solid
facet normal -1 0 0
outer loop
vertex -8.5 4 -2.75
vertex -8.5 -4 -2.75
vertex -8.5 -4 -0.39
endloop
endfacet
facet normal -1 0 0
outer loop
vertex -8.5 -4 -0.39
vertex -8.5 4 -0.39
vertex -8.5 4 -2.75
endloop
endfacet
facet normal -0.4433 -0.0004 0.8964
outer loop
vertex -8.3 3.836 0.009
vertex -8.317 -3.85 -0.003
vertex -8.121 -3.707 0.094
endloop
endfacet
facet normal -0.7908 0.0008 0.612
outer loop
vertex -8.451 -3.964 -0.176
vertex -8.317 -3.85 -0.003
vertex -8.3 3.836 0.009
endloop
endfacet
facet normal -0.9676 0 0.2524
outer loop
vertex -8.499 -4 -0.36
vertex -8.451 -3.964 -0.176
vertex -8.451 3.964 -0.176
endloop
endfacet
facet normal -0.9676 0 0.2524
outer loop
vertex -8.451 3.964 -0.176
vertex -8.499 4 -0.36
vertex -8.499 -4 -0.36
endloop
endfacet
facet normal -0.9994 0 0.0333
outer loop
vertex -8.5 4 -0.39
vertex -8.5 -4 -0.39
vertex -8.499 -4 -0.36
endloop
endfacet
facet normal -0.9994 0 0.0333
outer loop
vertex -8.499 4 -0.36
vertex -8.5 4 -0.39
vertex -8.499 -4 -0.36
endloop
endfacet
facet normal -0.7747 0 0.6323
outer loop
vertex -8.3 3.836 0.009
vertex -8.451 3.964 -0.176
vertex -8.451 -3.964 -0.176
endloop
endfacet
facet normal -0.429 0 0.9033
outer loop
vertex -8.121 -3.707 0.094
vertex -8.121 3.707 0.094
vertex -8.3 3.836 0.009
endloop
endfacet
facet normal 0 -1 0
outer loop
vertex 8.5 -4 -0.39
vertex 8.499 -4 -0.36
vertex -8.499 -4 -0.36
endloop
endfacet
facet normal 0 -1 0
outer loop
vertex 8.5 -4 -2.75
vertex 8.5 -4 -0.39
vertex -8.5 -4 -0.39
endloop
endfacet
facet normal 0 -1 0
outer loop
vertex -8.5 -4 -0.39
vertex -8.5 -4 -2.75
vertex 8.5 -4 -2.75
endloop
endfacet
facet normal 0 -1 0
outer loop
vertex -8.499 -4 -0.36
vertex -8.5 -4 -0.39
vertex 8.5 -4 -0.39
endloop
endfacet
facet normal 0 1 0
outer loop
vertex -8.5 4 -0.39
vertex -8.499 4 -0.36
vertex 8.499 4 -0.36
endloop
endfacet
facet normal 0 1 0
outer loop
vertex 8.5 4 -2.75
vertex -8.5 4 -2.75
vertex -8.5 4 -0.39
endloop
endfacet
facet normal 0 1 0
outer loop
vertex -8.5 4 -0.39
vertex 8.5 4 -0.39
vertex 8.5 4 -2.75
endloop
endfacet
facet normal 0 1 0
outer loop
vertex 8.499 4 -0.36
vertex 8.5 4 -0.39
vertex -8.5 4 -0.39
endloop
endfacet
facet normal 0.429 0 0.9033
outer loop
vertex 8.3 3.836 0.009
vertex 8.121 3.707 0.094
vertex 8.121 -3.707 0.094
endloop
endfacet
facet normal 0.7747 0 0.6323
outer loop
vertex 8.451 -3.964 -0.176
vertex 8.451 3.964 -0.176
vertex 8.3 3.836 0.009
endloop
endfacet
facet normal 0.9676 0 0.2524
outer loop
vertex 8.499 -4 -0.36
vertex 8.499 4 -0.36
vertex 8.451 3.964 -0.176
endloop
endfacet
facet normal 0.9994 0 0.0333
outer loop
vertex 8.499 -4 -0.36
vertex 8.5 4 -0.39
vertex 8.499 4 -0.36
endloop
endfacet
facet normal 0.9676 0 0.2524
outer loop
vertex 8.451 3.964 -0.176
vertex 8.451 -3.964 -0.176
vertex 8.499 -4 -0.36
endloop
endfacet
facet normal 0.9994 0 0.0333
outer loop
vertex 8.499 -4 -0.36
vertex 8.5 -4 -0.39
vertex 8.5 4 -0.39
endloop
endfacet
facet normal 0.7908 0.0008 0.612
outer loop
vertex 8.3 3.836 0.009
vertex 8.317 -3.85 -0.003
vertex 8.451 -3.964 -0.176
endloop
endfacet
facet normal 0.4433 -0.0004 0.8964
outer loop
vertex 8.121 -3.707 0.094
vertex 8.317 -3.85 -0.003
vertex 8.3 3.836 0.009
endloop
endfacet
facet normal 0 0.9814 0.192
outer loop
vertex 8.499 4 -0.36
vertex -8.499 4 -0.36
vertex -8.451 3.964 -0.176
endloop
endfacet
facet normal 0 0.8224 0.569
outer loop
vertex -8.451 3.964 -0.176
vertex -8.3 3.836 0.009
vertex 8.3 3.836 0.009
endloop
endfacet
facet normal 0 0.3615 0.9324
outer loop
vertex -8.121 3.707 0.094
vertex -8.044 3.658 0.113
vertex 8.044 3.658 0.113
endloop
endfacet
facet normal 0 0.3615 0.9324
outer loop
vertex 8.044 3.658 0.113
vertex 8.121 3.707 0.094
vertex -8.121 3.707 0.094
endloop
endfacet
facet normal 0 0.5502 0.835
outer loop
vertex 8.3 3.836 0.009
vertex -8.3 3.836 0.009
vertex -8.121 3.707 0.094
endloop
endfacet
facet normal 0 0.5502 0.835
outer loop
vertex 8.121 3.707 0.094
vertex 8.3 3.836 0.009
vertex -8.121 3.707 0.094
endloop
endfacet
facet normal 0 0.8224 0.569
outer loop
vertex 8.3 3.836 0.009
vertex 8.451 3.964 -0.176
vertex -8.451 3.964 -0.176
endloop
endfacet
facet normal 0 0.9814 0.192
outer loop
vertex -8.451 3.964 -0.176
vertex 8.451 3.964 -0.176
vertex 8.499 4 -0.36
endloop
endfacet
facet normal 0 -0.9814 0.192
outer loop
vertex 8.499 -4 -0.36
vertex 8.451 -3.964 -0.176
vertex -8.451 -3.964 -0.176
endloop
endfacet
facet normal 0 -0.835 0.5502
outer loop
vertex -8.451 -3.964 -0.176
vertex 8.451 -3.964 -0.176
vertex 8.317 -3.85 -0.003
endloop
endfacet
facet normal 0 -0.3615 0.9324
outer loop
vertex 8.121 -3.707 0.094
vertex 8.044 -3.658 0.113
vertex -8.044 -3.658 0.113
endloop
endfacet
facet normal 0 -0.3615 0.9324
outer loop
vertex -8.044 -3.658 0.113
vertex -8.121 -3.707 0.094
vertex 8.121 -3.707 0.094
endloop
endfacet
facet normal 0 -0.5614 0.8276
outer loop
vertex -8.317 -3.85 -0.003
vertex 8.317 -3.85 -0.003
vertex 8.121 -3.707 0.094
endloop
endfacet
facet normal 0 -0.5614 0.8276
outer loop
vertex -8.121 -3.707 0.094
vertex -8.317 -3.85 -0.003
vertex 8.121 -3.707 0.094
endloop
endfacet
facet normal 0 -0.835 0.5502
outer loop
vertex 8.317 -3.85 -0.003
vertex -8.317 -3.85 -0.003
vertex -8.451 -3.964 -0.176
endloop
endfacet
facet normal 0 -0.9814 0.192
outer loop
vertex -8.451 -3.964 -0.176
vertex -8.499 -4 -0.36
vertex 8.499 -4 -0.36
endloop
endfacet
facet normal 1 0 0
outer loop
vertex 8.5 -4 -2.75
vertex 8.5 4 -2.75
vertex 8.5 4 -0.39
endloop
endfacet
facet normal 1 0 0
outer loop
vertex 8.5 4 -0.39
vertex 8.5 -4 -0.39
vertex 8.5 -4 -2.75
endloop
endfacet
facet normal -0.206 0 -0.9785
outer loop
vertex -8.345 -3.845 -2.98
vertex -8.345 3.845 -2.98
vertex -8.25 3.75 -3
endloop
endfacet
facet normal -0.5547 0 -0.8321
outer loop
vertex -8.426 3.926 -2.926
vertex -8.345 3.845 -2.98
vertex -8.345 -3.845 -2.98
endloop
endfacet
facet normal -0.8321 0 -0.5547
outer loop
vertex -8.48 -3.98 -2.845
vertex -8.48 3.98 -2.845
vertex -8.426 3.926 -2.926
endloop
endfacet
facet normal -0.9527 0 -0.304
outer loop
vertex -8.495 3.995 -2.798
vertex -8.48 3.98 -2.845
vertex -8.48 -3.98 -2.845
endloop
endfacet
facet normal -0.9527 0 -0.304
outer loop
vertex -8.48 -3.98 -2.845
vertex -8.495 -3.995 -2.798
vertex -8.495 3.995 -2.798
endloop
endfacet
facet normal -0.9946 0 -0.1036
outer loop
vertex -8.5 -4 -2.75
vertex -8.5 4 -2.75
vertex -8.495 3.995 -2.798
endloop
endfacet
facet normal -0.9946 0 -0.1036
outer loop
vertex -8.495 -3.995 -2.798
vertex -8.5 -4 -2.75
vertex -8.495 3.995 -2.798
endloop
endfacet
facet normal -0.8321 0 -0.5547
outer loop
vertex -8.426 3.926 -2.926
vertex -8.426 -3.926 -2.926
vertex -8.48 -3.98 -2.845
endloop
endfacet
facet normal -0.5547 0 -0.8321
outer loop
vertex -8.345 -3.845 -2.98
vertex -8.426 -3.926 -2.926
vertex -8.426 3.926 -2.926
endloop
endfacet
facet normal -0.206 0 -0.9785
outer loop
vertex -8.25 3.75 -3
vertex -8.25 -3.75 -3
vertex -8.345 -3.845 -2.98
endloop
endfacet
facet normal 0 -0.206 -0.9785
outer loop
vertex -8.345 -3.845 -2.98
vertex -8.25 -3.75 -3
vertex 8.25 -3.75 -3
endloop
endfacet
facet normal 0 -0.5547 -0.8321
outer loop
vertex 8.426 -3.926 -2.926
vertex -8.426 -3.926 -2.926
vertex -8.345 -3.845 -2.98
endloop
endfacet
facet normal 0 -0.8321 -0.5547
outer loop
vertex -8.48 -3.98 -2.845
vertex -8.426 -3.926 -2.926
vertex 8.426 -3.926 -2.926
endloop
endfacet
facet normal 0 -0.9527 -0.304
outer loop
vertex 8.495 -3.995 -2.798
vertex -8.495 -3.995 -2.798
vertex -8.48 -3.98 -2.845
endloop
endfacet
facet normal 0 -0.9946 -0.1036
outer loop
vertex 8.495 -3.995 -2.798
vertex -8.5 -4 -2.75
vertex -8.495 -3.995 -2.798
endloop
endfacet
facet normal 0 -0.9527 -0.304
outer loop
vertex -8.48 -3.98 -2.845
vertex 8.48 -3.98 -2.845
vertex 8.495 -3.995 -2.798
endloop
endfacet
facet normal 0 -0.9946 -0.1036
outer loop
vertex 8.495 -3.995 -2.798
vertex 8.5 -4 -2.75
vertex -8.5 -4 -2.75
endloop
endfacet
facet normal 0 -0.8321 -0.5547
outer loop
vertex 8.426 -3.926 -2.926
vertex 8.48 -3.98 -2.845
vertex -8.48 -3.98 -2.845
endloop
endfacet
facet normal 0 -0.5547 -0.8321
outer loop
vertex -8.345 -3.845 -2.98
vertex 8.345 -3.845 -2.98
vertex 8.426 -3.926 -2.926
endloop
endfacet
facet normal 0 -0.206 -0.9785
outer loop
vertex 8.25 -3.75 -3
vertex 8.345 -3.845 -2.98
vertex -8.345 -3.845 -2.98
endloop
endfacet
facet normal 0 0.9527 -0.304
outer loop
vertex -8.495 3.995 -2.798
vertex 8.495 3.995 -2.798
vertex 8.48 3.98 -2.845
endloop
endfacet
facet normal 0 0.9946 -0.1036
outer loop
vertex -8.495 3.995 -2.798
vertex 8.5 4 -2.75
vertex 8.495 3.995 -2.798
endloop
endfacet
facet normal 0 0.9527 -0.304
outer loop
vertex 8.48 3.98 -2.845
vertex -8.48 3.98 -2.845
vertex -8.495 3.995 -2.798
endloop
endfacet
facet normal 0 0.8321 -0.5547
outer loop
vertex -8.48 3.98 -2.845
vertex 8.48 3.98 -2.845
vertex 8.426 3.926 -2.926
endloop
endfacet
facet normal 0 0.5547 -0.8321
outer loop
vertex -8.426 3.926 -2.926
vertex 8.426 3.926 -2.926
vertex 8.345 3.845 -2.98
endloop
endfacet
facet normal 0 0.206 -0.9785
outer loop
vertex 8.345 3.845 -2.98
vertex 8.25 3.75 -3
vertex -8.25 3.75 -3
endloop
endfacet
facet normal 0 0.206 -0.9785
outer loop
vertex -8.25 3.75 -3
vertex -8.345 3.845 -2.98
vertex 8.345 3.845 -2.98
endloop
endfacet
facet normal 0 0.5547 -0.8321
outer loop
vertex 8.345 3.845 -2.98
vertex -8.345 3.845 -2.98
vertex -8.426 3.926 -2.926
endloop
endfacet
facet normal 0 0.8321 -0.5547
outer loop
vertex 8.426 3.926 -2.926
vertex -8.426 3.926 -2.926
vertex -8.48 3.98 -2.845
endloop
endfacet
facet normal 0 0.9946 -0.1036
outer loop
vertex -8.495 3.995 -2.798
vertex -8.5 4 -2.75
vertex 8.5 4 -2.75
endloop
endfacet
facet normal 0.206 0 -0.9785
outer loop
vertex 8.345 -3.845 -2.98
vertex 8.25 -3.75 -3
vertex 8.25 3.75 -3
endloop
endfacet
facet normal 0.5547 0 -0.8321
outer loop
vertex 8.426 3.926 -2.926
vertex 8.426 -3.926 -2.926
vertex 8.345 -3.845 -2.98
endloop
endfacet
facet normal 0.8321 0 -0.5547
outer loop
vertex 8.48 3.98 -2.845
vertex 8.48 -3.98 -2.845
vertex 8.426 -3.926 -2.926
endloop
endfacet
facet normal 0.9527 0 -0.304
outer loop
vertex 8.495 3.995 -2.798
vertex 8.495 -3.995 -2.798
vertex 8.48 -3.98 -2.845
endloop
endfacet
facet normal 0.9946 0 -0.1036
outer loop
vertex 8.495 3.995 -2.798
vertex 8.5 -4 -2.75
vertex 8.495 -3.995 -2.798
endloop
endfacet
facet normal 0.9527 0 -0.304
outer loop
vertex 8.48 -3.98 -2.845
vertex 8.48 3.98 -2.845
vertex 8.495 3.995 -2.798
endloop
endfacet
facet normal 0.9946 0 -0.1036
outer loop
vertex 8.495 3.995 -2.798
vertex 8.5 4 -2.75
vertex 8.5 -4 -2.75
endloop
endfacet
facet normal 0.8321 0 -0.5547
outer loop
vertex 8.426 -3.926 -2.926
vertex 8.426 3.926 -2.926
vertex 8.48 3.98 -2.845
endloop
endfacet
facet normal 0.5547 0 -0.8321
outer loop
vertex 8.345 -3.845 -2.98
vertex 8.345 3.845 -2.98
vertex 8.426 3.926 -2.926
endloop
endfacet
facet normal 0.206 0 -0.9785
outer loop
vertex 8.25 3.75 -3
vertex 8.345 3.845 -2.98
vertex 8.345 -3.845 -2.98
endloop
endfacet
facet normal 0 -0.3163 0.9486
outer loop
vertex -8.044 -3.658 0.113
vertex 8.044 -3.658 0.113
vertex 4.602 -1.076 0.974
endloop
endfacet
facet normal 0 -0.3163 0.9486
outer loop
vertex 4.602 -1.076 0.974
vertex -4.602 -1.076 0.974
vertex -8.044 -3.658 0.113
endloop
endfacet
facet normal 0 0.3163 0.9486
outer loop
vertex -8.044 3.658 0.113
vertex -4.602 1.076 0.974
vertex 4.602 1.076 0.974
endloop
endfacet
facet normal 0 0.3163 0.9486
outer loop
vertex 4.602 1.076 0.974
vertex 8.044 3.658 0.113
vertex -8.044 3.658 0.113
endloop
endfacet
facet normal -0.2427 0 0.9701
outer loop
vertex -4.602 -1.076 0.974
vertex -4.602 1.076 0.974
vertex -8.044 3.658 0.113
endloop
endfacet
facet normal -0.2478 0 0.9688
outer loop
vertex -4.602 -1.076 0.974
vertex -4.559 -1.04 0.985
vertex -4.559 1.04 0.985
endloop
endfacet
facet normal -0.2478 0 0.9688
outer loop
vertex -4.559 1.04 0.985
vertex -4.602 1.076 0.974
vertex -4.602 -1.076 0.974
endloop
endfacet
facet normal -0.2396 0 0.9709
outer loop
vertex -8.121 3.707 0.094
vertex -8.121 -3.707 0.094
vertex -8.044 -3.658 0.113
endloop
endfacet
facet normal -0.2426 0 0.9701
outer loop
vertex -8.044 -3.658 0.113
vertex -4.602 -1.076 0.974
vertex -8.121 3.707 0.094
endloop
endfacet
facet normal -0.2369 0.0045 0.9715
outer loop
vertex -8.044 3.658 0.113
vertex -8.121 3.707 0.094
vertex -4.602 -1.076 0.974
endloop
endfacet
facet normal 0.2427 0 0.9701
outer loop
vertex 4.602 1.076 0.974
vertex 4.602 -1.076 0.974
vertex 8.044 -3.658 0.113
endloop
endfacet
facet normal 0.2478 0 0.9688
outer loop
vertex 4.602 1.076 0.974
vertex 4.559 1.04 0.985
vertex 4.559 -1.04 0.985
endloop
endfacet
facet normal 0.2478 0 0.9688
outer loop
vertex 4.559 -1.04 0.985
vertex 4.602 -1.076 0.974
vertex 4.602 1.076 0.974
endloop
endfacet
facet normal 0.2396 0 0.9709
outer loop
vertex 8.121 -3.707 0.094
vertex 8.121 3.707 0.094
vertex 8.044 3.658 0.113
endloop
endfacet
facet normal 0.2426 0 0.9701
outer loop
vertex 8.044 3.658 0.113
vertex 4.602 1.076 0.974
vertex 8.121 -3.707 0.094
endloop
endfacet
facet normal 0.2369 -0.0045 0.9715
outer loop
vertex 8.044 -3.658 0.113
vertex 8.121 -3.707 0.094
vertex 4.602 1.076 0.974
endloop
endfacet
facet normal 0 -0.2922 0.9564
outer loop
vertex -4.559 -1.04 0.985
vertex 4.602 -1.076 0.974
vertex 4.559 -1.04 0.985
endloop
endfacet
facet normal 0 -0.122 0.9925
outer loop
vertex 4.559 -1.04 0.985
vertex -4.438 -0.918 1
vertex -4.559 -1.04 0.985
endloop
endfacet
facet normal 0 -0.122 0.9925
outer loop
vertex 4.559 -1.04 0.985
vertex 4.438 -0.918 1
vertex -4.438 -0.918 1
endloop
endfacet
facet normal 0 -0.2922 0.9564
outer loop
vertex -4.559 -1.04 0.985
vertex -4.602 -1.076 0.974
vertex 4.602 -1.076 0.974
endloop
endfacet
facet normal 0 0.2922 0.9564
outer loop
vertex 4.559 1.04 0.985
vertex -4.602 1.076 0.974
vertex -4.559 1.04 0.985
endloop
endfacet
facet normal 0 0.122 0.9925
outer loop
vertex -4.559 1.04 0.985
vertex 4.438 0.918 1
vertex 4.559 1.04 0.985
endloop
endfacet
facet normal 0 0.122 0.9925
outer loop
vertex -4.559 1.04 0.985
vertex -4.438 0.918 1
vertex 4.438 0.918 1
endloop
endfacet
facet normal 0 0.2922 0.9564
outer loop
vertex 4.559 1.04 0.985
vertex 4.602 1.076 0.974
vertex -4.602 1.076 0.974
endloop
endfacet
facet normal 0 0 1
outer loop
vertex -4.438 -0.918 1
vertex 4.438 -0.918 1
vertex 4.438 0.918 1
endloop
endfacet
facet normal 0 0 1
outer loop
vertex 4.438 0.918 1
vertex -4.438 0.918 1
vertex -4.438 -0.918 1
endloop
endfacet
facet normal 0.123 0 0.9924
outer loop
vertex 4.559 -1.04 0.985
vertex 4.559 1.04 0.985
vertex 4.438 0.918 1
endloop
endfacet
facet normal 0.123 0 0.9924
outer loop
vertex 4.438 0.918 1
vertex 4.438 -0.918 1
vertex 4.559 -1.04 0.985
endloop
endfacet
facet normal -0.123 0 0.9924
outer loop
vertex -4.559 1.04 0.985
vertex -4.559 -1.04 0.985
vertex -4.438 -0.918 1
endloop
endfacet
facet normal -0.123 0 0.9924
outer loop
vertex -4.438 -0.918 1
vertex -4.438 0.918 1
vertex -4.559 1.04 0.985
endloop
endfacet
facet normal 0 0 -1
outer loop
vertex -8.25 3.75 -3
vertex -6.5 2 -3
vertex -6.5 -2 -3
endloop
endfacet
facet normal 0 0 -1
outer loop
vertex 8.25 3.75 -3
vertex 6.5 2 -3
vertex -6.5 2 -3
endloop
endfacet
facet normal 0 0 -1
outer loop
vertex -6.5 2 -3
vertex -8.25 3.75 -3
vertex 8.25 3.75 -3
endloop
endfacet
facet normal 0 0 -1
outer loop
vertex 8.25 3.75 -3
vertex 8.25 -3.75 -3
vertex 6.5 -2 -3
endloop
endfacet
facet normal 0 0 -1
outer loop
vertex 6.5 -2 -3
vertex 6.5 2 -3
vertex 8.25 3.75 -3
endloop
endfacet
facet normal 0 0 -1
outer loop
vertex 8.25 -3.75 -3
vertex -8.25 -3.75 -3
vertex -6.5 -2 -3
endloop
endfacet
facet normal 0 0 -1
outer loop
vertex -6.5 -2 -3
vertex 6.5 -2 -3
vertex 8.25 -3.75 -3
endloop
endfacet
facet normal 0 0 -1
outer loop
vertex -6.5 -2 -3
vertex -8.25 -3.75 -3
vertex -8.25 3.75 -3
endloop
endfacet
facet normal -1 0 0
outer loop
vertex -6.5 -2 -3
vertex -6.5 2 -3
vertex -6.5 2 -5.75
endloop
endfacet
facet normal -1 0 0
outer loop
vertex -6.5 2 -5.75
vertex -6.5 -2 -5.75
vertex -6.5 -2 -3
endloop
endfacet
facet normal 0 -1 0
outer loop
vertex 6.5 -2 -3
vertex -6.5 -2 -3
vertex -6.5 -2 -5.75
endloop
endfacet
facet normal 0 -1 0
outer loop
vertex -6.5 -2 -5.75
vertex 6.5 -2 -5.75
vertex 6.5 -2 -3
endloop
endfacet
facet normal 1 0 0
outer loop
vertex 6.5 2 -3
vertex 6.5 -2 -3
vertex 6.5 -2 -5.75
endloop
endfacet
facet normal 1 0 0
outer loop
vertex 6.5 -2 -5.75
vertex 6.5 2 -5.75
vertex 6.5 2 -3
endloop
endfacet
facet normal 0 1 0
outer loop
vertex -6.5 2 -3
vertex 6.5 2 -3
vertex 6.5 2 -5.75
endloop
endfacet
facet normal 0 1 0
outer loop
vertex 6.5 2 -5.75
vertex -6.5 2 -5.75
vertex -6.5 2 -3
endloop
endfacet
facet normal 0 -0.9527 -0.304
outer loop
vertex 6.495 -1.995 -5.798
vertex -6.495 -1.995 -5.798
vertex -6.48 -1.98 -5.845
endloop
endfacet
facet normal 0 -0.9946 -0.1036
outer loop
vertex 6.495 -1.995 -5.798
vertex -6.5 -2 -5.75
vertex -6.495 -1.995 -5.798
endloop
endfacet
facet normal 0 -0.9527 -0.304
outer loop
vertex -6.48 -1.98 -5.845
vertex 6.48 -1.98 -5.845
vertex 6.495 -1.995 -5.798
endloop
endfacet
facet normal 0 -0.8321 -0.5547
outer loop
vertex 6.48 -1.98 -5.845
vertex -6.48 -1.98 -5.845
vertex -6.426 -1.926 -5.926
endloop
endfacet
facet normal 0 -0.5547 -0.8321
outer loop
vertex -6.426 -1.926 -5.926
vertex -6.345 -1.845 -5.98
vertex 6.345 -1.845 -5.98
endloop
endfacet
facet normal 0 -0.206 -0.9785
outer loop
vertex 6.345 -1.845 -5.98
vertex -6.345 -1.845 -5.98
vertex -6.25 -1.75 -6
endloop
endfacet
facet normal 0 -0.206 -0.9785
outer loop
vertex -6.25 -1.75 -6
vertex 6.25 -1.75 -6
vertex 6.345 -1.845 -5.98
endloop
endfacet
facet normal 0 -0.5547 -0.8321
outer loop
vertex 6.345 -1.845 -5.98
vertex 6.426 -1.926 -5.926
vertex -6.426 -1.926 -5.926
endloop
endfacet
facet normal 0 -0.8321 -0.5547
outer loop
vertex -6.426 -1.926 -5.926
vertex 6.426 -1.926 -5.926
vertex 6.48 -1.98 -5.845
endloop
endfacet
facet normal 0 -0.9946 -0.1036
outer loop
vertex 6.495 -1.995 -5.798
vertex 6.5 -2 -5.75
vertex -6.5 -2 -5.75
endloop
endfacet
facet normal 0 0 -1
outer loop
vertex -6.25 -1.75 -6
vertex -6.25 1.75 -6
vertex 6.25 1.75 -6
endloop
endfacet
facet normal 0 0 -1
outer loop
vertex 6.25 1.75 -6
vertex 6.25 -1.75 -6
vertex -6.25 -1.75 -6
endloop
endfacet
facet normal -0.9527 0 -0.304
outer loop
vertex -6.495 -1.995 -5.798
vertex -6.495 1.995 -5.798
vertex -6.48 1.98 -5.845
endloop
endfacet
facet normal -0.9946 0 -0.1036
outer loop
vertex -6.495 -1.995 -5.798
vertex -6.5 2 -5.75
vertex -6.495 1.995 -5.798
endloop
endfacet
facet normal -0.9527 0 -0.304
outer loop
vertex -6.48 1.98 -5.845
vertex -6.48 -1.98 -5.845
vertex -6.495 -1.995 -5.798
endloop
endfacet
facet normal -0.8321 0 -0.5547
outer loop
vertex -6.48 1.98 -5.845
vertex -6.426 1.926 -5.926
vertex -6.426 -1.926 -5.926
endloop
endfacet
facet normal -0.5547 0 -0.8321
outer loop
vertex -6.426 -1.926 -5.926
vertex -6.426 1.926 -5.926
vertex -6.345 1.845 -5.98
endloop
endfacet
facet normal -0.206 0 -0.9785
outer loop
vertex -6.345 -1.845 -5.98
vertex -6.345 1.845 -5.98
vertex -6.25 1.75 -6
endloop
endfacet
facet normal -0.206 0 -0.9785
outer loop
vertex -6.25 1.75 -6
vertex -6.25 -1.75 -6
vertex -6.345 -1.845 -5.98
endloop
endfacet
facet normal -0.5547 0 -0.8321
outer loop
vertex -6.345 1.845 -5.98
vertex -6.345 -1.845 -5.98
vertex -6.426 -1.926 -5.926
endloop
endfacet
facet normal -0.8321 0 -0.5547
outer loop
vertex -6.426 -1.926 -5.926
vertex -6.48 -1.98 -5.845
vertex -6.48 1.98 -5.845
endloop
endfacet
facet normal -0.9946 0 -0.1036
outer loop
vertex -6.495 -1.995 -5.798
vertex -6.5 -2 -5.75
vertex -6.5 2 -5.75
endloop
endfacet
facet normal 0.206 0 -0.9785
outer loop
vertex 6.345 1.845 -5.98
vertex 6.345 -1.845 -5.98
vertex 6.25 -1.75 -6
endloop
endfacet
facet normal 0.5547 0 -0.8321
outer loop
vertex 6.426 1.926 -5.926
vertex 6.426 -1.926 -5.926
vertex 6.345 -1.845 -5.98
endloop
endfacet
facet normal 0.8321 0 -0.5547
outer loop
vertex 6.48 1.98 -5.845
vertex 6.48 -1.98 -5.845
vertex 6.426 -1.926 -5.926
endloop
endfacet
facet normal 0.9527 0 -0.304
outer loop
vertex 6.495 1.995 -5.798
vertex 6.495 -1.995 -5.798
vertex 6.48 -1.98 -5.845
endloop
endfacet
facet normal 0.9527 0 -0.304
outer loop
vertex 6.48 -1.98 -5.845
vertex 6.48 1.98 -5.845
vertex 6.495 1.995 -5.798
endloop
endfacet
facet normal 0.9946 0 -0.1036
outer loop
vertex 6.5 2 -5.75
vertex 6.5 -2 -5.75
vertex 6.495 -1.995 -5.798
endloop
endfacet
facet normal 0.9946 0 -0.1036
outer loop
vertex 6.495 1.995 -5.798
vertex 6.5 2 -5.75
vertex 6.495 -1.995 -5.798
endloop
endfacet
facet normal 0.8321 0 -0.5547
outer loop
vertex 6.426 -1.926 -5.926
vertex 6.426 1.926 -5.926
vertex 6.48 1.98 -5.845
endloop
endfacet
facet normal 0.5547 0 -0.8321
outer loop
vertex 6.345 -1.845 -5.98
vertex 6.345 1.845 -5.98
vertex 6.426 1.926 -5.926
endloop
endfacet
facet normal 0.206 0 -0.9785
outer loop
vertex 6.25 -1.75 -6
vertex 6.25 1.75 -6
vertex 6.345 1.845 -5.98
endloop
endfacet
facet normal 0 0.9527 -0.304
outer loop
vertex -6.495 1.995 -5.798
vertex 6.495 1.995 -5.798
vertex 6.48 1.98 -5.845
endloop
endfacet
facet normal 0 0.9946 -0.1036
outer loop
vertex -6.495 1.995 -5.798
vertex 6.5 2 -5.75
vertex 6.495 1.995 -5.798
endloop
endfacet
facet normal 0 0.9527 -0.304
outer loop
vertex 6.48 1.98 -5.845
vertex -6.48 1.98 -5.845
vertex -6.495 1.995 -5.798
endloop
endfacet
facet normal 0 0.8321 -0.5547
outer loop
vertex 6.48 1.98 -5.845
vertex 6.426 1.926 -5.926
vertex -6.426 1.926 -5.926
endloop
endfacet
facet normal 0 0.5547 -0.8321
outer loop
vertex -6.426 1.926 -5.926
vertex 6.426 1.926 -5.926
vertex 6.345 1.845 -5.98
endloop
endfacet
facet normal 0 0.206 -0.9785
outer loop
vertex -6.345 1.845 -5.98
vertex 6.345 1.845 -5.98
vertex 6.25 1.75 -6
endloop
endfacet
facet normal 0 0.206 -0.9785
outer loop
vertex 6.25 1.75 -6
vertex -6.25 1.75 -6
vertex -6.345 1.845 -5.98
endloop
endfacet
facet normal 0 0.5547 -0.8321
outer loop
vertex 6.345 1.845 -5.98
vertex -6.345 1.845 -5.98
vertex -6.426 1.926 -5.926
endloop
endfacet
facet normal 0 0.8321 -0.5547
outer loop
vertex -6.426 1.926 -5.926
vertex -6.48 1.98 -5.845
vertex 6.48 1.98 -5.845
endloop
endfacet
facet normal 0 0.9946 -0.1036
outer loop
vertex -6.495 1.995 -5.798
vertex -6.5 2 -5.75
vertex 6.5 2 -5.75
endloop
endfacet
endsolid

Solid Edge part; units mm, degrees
sketch "Sketch1" plane through (0, 0, 0) normal (0, 0, 1) x (1, 0, 0)
  line L0 (-8.5, -4) -> (8.5, -4)
  line L1 (8.5, -4) -> (8.5, 4)
  line L2 (8.5, 4) -> (-8.5, 4)
  line L3 (-8.5, 4) -> (-8.5, -4)
  dimension "D1" = 17
  dimension "D2" = 8
extrude "Protrusion1" add sketch "Sketch1" against normal blind 6
sketch "Sketch2" plane through (0, 0, -6) normal (0, 0, -1) x (1, 0, 0)
  line L0 (-6.5, -2) -> (6.5, -2)
  line L1 (6.5, -2) -> (6.5, 2)
  line L2 (6.5, 2) -> (-6.5, 2)
  line L3 (-6.5, 2) -> (-6.5, -2)
  dimension "D1" = 13
  dimension "D2" = 4
extrude "Extrusionsausschnitt_1" cut sketch "Sketch2" against normal blind 3 flip side to cut
fillet "Verrundung_1" radius 0.25 8 edges at (0, -2, -6) (6.5, 0, -6) (0, 2, -6) (-6.5, 0, -6) (0, -4, -3) (8.5, 0, -3) (0, 4, -3) (-8.5, 0, -3)
sketch "Sketch3" plane through (0, 0, 0) normal (0, 0, 1) x (1, 0, 0)
  line L0 (-4.5, -1) -> (4.5, -1)
  line L1 (4.5, -1) -> (4.5, 1)
  line L2 (4.5, 1) -> (-4.5, 1)
  line L3 (-4.5, 1) -> (-4.5, -1)
  dimension "D1" = 9
  dimension "D2" = 2
extrude "Extrusionsausprägung_2" add sketch "Sketch3" along normal blind 1
sketch "Sketch4" plane through (4.5, 0, 0.5) normal (1, 0, 0) x (0, 1, 0)
  line L0 (-4, -0.5) -> (-1, 0.5)
  line L1 (-4, -0.5) -> (4, -0.5)
  line L2 (1, 0.5) -> (4, -0.5)
  line L3 (-1, 0.5) -> (1, 0.5)
extrude "Extrusionsausprägung_3" add sketch "Sketch4" against normal blind 13 and the other way blind 4
sketch "Sketch5" plane through (0, -4, -1.375) normal (0, -1, 0) x (1, 0, 0)
  line L0 (-8.5, 1.375) -> (-4.5, 2.375)
  line L1 (-4.5, 2.375) -> (4.5, 2.375)
  line L2 (4.5, 2.375) -> (8.5, 1.375)
  dimension "D1" = 9
extrude "Extrusionsausschnitt_2" cut sketch "Sketch5" against normal blind 10 material side at (-6.5121, -4, 0.5485)
fillet "Verrundung_4" radius 0.5 8 edges at (0, -1, 1) (-4.5, 0, 1) (0, 1, 1) (4.5, 0, 1) (0, -4, 0) (8.5, 0, 0) (0, 4, 0) (-8.5, 0, 0)
properties part number "053" material "PLA"
